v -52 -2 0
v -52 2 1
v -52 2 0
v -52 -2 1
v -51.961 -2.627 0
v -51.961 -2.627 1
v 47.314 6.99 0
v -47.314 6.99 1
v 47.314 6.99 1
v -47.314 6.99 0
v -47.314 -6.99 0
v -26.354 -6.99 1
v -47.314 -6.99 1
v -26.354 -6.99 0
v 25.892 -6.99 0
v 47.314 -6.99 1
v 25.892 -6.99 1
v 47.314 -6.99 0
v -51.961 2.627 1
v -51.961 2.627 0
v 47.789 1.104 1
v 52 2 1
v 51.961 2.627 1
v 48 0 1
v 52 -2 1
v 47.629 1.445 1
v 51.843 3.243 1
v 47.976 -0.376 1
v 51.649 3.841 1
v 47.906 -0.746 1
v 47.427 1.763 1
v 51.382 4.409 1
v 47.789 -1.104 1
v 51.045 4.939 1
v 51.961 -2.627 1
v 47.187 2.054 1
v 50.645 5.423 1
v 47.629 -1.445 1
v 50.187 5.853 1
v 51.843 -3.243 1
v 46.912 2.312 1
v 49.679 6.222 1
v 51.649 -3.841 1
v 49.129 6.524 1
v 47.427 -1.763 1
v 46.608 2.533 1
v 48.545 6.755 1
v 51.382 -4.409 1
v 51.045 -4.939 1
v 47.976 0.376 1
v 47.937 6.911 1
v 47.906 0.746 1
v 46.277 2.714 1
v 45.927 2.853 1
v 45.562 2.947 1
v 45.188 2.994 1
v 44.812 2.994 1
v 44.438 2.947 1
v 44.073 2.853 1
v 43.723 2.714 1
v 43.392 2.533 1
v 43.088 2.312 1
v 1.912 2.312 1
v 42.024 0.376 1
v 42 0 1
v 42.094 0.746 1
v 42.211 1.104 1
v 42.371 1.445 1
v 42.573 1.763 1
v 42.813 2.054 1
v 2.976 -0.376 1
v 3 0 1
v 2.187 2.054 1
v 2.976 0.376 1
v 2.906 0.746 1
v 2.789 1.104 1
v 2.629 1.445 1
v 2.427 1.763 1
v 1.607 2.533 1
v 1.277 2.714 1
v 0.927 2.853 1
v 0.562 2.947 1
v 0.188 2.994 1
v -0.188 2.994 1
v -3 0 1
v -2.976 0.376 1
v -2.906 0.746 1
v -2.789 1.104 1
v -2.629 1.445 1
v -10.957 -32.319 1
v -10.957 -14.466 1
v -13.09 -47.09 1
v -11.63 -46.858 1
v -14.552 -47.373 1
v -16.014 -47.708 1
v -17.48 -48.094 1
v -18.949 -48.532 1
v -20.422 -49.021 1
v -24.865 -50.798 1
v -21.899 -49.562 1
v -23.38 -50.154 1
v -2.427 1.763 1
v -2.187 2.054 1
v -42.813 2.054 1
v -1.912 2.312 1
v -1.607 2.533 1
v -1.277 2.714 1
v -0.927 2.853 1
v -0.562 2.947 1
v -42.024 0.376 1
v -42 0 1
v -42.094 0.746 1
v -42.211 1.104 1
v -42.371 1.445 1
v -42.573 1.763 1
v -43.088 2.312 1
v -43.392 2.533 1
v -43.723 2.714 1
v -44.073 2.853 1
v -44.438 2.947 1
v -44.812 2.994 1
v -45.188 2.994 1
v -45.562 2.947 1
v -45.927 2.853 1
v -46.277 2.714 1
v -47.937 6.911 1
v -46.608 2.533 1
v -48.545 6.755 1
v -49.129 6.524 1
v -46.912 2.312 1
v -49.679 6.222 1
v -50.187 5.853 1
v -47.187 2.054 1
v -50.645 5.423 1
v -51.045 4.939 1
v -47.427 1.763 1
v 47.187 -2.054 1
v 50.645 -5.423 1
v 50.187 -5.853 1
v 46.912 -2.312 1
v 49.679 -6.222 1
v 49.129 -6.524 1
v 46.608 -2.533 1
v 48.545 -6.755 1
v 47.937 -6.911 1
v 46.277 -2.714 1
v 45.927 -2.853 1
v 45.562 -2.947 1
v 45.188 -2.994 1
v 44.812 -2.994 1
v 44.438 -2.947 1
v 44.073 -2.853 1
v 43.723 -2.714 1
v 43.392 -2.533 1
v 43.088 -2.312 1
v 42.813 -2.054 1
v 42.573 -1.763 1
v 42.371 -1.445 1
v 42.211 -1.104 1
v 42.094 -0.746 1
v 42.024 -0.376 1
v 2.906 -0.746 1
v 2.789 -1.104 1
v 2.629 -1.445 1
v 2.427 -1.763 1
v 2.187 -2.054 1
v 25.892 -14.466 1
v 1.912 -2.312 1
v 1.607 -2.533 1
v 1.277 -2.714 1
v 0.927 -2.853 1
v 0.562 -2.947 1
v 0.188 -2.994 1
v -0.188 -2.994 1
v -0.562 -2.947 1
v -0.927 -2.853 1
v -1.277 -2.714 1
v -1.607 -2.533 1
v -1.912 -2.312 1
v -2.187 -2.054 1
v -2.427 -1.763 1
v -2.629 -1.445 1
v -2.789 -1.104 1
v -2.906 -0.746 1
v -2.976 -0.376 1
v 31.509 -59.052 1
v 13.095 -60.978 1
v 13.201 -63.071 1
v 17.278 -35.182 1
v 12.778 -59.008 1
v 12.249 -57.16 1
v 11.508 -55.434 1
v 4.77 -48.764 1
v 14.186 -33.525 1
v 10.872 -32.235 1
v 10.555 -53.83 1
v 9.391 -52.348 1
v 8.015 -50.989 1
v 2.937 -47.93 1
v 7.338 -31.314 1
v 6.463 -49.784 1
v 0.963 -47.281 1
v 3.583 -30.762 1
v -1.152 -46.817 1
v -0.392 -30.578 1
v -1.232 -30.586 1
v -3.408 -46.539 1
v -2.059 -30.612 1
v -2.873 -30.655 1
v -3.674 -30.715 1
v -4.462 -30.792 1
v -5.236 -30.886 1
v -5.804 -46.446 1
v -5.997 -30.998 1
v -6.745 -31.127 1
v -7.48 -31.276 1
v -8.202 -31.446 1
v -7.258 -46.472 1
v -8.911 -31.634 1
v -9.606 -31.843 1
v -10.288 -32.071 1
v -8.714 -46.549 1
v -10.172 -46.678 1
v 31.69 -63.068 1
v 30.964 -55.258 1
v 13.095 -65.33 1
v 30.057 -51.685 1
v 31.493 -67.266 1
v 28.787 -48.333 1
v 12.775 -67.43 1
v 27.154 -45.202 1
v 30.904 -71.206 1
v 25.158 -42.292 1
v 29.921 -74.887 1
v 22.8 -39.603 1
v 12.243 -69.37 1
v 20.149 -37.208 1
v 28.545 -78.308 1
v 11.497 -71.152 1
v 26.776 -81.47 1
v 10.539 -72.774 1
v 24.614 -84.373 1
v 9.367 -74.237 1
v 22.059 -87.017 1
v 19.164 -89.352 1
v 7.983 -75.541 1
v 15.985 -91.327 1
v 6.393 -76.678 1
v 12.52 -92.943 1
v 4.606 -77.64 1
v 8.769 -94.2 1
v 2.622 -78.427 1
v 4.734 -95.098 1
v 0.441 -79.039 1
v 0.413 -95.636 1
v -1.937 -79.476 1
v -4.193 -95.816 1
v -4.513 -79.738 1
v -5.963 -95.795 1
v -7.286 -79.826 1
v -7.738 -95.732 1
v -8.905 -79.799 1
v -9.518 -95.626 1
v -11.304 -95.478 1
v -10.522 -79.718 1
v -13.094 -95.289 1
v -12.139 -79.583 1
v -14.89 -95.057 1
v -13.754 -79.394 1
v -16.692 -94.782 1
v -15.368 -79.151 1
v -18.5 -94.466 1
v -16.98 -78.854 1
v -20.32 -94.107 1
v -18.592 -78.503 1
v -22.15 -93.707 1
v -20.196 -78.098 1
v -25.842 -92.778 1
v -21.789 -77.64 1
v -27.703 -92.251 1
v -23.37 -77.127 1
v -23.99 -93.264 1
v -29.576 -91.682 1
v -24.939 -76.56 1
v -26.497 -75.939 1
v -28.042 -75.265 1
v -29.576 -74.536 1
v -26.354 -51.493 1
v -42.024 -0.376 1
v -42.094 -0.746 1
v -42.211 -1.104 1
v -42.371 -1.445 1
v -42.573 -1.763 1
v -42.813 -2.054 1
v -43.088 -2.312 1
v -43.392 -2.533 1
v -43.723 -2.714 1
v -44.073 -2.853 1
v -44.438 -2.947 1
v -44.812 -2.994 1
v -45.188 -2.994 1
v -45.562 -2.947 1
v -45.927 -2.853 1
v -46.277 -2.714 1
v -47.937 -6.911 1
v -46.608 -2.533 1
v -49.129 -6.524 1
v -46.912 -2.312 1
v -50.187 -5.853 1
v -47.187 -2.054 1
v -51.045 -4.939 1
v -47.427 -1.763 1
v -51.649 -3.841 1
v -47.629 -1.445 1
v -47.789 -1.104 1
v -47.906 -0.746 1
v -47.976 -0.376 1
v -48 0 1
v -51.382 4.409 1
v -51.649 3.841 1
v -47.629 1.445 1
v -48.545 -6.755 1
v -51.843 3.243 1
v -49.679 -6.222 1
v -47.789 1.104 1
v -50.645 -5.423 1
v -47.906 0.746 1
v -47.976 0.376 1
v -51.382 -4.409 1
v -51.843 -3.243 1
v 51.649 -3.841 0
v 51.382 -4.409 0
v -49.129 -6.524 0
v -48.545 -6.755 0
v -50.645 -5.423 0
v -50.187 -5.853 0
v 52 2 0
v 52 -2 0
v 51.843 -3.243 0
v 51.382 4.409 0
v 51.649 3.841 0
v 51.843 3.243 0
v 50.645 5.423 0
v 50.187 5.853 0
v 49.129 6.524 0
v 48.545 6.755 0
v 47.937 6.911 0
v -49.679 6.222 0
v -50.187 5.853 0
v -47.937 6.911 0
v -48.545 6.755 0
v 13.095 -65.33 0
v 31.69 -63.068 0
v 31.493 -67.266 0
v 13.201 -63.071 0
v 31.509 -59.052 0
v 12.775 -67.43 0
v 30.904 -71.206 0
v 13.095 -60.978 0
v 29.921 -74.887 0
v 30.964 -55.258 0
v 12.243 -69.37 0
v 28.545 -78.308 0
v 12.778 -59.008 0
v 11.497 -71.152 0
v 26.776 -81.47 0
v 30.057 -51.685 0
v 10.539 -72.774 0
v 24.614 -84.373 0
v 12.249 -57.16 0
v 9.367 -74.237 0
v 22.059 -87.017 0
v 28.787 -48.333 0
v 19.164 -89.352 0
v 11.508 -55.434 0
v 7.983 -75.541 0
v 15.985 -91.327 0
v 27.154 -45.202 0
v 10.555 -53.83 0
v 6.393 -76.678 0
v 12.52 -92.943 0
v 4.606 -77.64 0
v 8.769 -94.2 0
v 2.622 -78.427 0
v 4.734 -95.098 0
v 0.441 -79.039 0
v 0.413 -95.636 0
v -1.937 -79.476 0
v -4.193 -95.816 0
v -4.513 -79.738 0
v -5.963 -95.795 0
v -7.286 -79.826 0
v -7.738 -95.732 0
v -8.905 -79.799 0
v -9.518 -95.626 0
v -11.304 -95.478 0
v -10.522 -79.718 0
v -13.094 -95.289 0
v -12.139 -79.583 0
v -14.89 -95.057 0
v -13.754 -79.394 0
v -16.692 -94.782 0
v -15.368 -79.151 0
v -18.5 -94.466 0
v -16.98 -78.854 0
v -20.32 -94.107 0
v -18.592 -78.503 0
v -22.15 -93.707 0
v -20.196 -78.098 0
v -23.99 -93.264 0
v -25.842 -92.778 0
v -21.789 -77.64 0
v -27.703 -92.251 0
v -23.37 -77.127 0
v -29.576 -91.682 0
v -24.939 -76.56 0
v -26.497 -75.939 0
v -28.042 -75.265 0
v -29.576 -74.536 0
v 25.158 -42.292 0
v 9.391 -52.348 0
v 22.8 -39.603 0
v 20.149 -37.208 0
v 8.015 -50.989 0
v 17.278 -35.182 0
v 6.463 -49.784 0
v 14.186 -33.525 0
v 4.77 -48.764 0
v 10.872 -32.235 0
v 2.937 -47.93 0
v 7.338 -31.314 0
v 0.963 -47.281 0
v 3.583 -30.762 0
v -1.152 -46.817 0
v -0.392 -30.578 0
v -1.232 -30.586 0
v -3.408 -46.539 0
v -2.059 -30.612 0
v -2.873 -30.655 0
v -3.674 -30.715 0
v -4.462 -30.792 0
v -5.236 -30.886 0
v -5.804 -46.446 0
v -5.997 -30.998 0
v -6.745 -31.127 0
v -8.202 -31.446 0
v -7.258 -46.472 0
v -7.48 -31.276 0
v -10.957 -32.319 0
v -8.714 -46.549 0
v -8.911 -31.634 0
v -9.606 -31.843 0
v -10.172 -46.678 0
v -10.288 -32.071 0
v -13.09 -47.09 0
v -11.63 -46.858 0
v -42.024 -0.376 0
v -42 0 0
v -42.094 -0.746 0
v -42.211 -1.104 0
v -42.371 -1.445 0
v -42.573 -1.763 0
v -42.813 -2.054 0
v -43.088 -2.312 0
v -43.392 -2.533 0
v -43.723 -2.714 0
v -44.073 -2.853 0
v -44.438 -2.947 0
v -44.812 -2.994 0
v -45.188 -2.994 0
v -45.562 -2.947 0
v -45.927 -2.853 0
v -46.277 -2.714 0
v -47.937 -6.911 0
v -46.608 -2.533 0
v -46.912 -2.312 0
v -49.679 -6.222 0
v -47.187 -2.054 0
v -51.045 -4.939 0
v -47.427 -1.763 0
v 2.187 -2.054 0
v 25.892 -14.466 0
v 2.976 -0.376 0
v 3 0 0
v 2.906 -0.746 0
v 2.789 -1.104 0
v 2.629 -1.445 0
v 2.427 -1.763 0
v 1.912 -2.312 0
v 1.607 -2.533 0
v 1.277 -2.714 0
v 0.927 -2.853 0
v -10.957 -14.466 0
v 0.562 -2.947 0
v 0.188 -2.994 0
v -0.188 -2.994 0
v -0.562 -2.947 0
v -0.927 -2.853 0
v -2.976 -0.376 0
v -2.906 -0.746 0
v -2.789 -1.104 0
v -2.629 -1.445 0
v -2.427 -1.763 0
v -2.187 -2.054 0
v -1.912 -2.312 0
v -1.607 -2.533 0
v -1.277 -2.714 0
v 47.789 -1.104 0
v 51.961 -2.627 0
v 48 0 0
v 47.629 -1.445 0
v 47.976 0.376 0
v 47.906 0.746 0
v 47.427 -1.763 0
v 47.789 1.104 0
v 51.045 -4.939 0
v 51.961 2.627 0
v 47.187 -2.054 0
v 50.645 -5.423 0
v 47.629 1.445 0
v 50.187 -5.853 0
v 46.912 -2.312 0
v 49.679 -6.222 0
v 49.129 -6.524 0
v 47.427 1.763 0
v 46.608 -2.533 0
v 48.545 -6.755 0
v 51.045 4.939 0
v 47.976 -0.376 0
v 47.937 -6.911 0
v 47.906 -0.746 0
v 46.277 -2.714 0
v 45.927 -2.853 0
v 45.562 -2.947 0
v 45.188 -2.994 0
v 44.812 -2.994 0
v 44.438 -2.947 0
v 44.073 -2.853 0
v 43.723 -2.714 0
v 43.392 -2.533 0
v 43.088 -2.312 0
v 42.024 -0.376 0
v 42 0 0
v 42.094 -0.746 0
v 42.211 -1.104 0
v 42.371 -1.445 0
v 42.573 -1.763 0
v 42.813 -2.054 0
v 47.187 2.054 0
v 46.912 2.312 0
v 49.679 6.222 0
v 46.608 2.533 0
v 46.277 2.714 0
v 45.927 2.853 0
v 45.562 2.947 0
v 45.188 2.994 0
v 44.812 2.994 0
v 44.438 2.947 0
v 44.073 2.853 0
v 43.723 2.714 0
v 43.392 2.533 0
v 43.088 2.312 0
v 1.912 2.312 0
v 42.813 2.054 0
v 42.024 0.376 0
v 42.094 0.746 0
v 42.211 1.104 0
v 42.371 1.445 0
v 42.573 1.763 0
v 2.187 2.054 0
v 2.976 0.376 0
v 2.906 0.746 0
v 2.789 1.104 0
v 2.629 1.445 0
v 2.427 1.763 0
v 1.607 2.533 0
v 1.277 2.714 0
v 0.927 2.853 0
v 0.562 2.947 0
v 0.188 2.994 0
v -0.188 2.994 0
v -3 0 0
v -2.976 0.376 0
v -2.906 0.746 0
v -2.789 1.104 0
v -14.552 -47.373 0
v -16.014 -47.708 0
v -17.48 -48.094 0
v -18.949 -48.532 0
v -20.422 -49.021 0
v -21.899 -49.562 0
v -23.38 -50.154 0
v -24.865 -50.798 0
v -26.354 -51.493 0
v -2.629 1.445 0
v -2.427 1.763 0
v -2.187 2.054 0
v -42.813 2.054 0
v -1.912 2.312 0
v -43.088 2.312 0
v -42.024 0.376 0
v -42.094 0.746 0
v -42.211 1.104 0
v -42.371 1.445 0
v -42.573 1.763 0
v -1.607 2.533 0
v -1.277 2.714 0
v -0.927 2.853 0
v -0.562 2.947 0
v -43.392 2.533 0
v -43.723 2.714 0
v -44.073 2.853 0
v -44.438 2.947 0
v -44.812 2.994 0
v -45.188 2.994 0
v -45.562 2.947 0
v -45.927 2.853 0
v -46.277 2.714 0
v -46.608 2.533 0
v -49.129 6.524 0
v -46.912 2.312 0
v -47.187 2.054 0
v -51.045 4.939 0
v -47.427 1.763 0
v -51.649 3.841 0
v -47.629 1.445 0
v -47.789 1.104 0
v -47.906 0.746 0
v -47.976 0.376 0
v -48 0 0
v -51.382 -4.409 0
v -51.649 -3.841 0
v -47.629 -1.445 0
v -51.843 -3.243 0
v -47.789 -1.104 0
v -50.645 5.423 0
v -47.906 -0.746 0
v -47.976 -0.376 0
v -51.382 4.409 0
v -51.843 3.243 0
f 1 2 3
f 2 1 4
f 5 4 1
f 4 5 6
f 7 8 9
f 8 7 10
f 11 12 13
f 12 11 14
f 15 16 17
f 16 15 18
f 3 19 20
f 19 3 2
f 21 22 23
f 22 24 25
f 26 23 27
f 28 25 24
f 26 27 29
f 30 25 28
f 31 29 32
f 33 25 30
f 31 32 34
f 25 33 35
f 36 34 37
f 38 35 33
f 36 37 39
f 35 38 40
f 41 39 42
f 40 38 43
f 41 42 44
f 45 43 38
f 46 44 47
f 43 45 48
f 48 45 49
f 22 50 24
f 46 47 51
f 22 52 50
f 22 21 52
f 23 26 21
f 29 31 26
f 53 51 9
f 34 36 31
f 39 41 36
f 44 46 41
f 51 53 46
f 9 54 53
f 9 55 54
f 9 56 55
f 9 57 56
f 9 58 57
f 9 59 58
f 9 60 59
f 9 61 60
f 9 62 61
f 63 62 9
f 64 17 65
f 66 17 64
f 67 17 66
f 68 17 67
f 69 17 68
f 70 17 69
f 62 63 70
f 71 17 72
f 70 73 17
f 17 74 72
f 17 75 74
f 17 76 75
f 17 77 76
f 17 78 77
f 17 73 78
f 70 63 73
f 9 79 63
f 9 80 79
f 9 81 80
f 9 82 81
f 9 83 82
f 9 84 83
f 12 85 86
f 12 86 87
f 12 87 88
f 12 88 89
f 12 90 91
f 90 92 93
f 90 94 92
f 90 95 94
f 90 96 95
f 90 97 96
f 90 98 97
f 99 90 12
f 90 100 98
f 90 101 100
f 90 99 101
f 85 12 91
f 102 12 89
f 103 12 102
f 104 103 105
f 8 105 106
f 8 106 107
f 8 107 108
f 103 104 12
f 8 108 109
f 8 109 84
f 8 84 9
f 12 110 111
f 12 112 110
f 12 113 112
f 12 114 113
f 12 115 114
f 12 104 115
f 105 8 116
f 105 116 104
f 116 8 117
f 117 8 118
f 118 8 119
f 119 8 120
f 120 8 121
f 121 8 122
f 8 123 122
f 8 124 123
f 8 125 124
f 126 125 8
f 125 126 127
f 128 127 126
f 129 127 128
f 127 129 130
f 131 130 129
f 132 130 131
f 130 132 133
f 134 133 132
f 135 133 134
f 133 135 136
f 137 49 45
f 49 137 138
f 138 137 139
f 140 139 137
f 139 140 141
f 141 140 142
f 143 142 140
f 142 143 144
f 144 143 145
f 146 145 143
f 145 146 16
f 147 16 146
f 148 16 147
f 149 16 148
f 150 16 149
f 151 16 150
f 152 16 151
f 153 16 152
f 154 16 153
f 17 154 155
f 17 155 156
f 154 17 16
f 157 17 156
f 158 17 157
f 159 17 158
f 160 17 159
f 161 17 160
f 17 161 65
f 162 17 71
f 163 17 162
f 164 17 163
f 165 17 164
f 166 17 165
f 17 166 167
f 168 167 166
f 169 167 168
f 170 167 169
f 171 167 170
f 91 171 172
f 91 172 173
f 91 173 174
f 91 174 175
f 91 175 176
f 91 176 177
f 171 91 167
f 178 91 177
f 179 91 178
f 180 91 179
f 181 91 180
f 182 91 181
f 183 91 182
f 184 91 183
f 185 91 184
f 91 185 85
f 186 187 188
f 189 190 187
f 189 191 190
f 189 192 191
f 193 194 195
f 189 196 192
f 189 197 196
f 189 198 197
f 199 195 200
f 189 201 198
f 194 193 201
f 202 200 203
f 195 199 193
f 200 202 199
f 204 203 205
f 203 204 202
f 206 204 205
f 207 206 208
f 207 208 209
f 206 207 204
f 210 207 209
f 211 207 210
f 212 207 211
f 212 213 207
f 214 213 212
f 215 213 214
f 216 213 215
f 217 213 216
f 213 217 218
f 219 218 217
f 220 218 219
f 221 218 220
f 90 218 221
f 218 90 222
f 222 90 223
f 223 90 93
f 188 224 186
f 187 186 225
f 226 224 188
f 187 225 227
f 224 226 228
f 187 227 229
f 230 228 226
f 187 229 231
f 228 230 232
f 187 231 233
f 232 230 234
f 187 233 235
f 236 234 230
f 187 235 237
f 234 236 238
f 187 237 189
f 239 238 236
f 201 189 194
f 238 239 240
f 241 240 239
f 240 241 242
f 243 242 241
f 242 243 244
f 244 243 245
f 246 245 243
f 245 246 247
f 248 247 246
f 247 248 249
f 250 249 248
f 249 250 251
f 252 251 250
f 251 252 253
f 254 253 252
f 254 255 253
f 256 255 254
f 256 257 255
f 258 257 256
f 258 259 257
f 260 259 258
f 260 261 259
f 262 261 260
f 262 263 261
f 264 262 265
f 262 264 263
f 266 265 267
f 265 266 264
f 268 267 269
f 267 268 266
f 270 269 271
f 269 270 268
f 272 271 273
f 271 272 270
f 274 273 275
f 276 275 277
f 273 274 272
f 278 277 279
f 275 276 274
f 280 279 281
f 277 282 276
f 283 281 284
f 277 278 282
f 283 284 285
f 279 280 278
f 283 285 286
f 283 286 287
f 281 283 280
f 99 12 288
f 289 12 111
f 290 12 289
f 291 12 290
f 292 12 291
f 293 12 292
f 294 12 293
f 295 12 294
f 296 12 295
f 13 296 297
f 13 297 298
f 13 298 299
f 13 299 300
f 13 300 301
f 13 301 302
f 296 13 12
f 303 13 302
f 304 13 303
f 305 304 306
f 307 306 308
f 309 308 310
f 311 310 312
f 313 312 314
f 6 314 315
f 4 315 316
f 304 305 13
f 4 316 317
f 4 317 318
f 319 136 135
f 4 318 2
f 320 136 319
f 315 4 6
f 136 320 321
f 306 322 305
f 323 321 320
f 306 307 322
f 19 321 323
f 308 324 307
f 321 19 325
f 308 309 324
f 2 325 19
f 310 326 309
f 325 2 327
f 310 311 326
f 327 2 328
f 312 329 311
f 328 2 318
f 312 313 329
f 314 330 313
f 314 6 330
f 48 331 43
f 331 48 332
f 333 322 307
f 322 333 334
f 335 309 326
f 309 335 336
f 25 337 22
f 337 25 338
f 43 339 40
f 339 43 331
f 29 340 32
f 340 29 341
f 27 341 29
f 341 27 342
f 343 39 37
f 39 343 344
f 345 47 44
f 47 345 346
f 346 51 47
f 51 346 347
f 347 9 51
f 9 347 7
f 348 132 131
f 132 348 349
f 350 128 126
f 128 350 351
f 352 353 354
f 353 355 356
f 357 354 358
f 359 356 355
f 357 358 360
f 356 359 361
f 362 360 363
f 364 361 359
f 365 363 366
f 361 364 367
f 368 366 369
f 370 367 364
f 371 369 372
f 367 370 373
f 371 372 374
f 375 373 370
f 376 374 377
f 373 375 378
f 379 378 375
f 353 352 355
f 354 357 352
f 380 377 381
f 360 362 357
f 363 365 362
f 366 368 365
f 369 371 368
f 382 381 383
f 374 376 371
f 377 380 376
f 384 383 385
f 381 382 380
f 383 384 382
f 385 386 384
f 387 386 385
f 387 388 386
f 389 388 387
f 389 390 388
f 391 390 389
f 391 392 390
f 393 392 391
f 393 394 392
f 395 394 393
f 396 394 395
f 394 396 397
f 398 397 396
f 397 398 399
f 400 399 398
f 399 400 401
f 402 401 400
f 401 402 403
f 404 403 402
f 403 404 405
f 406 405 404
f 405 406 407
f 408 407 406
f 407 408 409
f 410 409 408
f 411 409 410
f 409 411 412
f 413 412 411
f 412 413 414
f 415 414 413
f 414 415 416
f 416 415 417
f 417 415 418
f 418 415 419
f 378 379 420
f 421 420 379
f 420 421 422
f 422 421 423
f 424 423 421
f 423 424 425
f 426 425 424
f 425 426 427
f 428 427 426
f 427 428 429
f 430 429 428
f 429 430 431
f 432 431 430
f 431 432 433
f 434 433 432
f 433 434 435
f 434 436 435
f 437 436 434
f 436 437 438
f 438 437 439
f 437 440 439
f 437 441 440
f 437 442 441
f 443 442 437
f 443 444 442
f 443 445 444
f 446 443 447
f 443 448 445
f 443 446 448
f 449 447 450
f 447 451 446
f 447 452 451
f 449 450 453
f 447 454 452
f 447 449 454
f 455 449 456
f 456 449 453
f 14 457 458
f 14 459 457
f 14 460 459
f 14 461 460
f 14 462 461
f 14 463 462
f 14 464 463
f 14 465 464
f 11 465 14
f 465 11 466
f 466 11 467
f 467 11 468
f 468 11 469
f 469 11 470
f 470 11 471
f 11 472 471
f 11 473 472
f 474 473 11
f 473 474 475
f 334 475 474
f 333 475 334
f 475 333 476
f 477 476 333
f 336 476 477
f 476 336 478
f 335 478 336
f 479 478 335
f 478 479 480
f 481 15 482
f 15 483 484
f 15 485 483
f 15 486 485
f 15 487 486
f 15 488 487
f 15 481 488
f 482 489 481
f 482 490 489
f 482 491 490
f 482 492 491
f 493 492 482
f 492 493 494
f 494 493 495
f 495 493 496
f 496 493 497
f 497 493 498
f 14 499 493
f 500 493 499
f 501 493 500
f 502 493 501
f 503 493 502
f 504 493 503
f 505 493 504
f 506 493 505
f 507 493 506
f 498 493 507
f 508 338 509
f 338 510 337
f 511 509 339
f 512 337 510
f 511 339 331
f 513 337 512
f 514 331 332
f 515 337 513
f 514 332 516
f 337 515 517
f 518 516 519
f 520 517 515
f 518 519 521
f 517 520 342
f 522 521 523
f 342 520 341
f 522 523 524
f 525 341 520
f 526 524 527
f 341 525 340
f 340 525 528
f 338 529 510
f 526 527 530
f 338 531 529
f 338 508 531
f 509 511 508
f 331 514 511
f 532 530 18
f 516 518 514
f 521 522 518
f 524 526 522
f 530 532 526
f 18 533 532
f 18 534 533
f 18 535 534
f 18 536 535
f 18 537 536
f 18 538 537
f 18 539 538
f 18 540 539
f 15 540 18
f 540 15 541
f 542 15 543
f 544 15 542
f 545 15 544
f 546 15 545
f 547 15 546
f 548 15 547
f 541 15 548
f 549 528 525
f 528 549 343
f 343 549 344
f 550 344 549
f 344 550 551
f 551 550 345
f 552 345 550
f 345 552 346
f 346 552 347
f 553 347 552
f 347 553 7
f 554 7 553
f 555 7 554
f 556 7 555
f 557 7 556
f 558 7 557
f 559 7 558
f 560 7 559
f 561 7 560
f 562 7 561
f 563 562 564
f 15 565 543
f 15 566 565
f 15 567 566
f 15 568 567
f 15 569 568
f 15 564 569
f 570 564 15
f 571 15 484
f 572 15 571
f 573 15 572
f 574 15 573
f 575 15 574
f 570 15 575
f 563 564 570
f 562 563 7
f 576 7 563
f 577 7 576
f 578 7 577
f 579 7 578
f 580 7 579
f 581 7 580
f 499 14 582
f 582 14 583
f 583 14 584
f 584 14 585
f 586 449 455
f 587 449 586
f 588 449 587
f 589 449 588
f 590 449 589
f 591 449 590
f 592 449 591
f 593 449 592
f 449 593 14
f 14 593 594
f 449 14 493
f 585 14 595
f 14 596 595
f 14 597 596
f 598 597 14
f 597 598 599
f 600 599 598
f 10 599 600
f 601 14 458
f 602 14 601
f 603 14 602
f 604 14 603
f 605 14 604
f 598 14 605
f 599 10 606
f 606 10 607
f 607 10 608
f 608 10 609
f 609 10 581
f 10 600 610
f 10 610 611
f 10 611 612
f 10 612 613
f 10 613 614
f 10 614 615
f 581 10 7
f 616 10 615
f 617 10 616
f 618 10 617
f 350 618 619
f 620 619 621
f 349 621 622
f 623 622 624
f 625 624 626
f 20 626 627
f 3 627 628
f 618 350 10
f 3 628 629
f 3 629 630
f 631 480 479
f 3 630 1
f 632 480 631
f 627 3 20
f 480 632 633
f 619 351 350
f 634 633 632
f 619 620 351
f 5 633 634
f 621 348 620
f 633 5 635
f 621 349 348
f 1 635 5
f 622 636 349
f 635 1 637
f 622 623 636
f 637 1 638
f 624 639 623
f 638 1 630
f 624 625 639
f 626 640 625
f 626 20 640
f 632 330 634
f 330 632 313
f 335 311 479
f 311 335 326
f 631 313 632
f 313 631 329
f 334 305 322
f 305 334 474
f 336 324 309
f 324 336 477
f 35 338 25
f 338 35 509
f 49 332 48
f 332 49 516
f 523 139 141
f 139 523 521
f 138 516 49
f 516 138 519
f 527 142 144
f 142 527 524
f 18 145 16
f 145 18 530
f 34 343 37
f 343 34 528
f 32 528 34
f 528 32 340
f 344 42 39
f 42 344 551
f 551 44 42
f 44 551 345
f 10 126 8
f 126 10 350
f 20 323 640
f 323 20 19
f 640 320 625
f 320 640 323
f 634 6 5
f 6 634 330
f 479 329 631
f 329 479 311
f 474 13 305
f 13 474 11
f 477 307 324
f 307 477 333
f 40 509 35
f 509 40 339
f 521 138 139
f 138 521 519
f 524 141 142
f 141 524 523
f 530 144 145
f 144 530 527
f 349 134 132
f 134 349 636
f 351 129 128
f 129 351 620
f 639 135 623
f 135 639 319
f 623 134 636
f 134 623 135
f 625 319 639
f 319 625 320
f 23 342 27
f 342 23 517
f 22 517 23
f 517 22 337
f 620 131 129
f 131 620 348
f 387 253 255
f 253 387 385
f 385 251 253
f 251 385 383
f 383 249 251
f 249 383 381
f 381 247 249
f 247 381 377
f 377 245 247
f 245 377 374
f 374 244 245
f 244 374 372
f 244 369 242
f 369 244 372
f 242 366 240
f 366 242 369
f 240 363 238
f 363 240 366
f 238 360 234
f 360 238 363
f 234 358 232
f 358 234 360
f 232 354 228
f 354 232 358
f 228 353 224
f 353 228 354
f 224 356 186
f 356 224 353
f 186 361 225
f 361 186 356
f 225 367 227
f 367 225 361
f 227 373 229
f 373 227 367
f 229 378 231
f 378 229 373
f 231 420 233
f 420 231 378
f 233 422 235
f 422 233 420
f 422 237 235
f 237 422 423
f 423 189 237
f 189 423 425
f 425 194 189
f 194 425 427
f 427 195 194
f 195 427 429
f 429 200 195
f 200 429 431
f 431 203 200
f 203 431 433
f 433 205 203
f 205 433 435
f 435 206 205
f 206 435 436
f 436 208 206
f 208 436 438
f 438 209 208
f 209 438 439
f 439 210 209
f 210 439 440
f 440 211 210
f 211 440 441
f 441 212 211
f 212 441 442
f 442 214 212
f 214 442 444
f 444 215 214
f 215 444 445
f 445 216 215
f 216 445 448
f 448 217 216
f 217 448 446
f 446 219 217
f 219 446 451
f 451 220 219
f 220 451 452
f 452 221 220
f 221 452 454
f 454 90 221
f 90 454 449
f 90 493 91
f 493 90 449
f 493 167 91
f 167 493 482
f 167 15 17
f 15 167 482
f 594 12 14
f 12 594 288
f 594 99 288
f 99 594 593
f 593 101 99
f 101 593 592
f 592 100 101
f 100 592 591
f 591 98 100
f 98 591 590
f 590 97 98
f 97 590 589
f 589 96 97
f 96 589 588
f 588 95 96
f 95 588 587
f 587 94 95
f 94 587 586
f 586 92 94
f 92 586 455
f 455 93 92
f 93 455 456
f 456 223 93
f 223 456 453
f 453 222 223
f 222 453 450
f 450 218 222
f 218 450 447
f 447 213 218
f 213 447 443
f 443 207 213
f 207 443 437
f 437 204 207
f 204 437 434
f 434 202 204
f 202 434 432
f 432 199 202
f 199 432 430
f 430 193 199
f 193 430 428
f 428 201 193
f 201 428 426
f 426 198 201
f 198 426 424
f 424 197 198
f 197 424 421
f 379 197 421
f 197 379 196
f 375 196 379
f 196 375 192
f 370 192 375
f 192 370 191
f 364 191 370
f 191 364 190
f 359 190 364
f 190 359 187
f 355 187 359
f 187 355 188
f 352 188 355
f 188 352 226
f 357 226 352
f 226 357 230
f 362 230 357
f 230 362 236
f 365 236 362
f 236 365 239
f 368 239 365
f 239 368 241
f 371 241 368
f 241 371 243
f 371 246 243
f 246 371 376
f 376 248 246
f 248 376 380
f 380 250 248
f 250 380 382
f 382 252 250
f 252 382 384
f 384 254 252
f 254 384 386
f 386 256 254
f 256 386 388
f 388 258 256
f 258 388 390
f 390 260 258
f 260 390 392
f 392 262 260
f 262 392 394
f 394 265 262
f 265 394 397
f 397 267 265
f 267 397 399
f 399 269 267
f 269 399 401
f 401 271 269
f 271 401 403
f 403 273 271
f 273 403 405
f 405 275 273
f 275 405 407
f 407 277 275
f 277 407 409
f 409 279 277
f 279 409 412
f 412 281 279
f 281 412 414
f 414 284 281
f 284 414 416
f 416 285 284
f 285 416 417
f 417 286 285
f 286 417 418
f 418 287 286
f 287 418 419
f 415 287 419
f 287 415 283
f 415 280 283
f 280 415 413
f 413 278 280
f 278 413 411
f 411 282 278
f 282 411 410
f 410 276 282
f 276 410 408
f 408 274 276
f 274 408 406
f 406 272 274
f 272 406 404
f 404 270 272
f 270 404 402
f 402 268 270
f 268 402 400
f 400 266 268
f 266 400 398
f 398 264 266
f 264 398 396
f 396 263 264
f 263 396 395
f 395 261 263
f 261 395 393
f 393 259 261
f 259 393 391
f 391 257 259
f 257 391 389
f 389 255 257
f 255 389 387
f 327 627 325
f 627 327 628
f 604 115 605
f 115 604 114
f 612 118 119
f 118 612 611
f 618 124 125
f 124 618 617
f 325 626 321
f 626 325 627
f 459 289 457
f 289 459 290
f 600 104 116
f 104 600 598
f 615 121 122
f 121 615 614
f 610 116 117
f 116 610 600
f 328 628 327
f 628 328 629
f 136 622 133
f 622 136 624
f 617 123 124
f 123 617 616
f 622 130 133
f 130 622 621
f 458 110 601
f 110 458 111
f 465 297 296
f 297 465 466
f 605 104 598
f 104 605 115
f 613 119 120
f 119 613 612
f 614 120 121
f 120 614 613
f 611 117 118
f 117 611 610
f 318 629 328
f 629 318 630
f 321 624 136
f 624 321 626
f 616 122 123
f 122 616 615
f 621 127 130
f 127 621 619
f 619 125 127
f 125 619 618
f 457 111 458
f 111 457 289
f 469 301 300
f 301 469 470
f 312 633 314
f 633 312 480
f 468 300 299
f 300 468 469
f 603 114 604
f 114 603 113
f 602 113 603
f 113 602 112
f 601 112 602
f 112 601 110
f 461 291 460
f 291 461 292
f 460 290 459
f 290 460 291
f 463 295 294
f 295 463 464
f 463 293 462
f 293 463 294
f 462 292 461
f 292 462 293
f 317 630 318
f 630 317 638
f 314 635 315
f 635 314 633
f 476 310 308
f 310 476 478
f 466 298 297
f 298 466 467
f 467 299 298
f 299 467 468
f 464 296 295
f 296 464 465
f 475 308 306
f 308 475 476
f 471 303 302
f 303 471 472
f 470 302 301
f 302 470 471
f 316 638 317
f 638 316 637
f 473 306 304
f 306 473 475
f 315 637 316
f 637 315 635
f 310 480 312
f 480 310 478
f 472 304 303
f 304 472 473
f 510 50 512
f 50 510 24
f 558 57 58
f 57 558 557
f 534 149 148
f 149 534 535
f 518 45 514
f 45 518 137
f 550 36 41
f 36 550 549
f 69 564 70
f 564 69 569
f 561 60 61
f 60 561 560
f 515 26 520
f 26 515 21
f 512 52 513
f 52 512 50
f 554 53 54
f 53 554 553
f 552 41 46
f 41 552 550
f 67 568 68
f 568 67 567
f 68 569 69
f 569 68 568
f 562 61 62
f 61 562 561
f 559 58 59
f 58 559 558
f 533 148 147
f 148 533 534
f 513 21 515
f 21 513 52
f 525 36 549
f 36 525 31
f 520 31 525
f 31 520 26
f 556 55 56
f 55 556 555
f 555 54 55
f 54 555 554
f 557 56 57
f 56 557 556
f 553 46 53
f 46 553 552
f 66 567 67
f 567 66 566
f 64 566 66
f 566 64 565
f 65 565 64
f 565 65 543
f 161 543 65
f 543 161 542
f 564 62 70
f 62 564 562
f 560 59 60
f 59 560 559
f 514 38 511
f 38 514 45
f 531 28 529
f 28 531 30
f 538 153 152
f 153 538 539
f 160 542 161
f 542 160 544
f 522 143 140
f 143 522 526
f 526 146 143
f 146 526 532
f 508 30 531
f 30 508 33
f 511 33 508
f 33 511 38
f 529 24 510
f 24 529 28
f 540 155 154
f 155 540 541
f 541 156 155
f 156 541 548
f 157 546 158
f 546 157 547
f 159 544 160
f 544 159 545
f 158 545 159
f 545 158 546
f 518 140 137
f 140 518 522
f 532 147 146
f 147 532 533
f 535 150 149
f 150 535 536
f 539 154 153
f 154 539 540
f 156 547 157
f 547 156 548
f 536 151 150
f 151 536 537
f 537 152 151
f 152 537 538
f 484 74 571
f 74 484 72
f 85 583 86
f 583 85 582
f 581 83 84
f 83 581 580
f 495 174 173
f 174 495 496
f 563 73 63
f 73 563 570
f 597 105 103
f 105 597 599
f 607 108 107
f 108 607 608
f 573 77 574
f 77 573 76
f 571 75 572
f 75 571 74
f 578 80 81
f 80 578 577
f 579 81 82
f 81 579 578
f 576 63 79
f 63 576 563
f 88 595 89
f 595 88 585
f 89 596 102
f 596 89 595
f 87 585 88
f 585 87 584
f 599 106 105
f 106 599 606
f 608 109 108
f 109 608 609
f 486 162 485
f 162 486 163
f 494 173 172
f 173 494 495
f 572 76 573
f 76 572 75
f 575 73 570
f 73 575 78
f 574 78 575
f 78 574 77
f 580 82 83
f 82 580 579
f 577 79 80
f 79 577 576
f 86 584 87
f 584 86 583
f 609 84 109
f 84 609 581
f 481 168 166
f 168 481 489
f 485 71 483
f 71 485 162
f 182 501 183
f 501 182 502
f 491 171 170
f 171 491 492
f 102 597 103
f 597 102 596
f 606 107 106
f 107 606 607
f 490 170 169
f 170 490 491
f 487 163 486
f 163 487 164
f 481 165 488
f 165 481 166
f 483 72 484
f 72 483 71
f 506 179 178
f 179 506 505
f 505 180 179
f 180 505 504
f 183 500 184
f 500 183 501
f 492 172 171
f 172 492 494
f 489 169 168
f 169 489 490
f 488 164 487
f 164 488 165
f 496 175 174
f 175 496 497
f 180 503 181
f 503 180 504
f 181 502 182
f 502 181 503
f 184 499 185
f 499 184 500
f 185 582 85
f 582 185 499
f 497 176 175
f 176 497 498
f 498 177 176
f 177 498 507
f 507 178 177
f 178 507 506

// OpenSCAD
$fn = 50;


difference() {
	union() {
		translate(v = [0, 0, 0]) {
			rotate(a = [0, 0, 0]) {
				hull() {
					translate(v = [-47.0000000000, 2.0000000000, 0]) {
						rotate(a = [0, 0, 0]) {
							translate(v = [0, 0, 0]) {
								rotate(a = [0, 0, 0]) {
									cylinder(h = 1, r = 5);
								}
							}
						}
					}
					translate(v = [47.0000000000, 2.0000000000, 0]) {
						rotate(a = [0, 0, 0]) {
							translate(v = [0, 0, 0]) {
								rotate(a = [0, 0, 0]) {
									cylinder(h = 1, r = 5);
								}
							}
						}
					}
					translate(v = [-47.0000000000, -2.0000000000, 0]) {
						rotate(a = [0, 0, 0]) {
							translate(v = [0, 0, 0]) {
								rotate(a = [0, 0, 0]) {
									cylinder(h = 1, r = 5);
								}
							}
						}
					}
					translate(v = [47.0000000000, -2.0000000000, 0]) {
						rotate(a = [0, 0, 0]) {
							translate(v = [0, 0, 0]) {
								rotate(a = [0, 0, 0]) {
									cylinder(h = 1, r = 5);
								}
							}
						}
					}
				}
			}
		}
		translate(v = [0, 0, 0]) {
			rotate(a = [0, 0, 0]) {
				linear_extrude(height = 1) {
					text(font = "DejaVu Sans Mono:style=Bold", halign = "center", size = 95.0000000000, text = "5", valign = "top");
				}
			}
		}
	}
	union() {
		translate(v = [-45.0000000000, 0.0000000000, -125.0000000000]) {
			rotate(a = [0, 0, 0]) {
				cylinder(h = 250, r = 3.0000000000);
			}
		}
		translate(v = [45.0000000000, 0.0000000000, -125.0000000000]) {
			rotate(a = [0, 0, 0]) {
				cylinder(h = 250, r = 3.0000000000);
			}
		}
		translate(v = [45.0000000000, 0.0000000000, -125.0000000000]) {
			rotate(a = [0, 0, 0]) {
				cylinder(h = 250, r = 3.0000000000);
			}
		}
		translate(v = [0, 0, -125.0000000000]) {
			rotate(a = [0, 0, 0]) {
				cylinder(h = 250, r = 3.0000000000);
			}
		}
	}
}
